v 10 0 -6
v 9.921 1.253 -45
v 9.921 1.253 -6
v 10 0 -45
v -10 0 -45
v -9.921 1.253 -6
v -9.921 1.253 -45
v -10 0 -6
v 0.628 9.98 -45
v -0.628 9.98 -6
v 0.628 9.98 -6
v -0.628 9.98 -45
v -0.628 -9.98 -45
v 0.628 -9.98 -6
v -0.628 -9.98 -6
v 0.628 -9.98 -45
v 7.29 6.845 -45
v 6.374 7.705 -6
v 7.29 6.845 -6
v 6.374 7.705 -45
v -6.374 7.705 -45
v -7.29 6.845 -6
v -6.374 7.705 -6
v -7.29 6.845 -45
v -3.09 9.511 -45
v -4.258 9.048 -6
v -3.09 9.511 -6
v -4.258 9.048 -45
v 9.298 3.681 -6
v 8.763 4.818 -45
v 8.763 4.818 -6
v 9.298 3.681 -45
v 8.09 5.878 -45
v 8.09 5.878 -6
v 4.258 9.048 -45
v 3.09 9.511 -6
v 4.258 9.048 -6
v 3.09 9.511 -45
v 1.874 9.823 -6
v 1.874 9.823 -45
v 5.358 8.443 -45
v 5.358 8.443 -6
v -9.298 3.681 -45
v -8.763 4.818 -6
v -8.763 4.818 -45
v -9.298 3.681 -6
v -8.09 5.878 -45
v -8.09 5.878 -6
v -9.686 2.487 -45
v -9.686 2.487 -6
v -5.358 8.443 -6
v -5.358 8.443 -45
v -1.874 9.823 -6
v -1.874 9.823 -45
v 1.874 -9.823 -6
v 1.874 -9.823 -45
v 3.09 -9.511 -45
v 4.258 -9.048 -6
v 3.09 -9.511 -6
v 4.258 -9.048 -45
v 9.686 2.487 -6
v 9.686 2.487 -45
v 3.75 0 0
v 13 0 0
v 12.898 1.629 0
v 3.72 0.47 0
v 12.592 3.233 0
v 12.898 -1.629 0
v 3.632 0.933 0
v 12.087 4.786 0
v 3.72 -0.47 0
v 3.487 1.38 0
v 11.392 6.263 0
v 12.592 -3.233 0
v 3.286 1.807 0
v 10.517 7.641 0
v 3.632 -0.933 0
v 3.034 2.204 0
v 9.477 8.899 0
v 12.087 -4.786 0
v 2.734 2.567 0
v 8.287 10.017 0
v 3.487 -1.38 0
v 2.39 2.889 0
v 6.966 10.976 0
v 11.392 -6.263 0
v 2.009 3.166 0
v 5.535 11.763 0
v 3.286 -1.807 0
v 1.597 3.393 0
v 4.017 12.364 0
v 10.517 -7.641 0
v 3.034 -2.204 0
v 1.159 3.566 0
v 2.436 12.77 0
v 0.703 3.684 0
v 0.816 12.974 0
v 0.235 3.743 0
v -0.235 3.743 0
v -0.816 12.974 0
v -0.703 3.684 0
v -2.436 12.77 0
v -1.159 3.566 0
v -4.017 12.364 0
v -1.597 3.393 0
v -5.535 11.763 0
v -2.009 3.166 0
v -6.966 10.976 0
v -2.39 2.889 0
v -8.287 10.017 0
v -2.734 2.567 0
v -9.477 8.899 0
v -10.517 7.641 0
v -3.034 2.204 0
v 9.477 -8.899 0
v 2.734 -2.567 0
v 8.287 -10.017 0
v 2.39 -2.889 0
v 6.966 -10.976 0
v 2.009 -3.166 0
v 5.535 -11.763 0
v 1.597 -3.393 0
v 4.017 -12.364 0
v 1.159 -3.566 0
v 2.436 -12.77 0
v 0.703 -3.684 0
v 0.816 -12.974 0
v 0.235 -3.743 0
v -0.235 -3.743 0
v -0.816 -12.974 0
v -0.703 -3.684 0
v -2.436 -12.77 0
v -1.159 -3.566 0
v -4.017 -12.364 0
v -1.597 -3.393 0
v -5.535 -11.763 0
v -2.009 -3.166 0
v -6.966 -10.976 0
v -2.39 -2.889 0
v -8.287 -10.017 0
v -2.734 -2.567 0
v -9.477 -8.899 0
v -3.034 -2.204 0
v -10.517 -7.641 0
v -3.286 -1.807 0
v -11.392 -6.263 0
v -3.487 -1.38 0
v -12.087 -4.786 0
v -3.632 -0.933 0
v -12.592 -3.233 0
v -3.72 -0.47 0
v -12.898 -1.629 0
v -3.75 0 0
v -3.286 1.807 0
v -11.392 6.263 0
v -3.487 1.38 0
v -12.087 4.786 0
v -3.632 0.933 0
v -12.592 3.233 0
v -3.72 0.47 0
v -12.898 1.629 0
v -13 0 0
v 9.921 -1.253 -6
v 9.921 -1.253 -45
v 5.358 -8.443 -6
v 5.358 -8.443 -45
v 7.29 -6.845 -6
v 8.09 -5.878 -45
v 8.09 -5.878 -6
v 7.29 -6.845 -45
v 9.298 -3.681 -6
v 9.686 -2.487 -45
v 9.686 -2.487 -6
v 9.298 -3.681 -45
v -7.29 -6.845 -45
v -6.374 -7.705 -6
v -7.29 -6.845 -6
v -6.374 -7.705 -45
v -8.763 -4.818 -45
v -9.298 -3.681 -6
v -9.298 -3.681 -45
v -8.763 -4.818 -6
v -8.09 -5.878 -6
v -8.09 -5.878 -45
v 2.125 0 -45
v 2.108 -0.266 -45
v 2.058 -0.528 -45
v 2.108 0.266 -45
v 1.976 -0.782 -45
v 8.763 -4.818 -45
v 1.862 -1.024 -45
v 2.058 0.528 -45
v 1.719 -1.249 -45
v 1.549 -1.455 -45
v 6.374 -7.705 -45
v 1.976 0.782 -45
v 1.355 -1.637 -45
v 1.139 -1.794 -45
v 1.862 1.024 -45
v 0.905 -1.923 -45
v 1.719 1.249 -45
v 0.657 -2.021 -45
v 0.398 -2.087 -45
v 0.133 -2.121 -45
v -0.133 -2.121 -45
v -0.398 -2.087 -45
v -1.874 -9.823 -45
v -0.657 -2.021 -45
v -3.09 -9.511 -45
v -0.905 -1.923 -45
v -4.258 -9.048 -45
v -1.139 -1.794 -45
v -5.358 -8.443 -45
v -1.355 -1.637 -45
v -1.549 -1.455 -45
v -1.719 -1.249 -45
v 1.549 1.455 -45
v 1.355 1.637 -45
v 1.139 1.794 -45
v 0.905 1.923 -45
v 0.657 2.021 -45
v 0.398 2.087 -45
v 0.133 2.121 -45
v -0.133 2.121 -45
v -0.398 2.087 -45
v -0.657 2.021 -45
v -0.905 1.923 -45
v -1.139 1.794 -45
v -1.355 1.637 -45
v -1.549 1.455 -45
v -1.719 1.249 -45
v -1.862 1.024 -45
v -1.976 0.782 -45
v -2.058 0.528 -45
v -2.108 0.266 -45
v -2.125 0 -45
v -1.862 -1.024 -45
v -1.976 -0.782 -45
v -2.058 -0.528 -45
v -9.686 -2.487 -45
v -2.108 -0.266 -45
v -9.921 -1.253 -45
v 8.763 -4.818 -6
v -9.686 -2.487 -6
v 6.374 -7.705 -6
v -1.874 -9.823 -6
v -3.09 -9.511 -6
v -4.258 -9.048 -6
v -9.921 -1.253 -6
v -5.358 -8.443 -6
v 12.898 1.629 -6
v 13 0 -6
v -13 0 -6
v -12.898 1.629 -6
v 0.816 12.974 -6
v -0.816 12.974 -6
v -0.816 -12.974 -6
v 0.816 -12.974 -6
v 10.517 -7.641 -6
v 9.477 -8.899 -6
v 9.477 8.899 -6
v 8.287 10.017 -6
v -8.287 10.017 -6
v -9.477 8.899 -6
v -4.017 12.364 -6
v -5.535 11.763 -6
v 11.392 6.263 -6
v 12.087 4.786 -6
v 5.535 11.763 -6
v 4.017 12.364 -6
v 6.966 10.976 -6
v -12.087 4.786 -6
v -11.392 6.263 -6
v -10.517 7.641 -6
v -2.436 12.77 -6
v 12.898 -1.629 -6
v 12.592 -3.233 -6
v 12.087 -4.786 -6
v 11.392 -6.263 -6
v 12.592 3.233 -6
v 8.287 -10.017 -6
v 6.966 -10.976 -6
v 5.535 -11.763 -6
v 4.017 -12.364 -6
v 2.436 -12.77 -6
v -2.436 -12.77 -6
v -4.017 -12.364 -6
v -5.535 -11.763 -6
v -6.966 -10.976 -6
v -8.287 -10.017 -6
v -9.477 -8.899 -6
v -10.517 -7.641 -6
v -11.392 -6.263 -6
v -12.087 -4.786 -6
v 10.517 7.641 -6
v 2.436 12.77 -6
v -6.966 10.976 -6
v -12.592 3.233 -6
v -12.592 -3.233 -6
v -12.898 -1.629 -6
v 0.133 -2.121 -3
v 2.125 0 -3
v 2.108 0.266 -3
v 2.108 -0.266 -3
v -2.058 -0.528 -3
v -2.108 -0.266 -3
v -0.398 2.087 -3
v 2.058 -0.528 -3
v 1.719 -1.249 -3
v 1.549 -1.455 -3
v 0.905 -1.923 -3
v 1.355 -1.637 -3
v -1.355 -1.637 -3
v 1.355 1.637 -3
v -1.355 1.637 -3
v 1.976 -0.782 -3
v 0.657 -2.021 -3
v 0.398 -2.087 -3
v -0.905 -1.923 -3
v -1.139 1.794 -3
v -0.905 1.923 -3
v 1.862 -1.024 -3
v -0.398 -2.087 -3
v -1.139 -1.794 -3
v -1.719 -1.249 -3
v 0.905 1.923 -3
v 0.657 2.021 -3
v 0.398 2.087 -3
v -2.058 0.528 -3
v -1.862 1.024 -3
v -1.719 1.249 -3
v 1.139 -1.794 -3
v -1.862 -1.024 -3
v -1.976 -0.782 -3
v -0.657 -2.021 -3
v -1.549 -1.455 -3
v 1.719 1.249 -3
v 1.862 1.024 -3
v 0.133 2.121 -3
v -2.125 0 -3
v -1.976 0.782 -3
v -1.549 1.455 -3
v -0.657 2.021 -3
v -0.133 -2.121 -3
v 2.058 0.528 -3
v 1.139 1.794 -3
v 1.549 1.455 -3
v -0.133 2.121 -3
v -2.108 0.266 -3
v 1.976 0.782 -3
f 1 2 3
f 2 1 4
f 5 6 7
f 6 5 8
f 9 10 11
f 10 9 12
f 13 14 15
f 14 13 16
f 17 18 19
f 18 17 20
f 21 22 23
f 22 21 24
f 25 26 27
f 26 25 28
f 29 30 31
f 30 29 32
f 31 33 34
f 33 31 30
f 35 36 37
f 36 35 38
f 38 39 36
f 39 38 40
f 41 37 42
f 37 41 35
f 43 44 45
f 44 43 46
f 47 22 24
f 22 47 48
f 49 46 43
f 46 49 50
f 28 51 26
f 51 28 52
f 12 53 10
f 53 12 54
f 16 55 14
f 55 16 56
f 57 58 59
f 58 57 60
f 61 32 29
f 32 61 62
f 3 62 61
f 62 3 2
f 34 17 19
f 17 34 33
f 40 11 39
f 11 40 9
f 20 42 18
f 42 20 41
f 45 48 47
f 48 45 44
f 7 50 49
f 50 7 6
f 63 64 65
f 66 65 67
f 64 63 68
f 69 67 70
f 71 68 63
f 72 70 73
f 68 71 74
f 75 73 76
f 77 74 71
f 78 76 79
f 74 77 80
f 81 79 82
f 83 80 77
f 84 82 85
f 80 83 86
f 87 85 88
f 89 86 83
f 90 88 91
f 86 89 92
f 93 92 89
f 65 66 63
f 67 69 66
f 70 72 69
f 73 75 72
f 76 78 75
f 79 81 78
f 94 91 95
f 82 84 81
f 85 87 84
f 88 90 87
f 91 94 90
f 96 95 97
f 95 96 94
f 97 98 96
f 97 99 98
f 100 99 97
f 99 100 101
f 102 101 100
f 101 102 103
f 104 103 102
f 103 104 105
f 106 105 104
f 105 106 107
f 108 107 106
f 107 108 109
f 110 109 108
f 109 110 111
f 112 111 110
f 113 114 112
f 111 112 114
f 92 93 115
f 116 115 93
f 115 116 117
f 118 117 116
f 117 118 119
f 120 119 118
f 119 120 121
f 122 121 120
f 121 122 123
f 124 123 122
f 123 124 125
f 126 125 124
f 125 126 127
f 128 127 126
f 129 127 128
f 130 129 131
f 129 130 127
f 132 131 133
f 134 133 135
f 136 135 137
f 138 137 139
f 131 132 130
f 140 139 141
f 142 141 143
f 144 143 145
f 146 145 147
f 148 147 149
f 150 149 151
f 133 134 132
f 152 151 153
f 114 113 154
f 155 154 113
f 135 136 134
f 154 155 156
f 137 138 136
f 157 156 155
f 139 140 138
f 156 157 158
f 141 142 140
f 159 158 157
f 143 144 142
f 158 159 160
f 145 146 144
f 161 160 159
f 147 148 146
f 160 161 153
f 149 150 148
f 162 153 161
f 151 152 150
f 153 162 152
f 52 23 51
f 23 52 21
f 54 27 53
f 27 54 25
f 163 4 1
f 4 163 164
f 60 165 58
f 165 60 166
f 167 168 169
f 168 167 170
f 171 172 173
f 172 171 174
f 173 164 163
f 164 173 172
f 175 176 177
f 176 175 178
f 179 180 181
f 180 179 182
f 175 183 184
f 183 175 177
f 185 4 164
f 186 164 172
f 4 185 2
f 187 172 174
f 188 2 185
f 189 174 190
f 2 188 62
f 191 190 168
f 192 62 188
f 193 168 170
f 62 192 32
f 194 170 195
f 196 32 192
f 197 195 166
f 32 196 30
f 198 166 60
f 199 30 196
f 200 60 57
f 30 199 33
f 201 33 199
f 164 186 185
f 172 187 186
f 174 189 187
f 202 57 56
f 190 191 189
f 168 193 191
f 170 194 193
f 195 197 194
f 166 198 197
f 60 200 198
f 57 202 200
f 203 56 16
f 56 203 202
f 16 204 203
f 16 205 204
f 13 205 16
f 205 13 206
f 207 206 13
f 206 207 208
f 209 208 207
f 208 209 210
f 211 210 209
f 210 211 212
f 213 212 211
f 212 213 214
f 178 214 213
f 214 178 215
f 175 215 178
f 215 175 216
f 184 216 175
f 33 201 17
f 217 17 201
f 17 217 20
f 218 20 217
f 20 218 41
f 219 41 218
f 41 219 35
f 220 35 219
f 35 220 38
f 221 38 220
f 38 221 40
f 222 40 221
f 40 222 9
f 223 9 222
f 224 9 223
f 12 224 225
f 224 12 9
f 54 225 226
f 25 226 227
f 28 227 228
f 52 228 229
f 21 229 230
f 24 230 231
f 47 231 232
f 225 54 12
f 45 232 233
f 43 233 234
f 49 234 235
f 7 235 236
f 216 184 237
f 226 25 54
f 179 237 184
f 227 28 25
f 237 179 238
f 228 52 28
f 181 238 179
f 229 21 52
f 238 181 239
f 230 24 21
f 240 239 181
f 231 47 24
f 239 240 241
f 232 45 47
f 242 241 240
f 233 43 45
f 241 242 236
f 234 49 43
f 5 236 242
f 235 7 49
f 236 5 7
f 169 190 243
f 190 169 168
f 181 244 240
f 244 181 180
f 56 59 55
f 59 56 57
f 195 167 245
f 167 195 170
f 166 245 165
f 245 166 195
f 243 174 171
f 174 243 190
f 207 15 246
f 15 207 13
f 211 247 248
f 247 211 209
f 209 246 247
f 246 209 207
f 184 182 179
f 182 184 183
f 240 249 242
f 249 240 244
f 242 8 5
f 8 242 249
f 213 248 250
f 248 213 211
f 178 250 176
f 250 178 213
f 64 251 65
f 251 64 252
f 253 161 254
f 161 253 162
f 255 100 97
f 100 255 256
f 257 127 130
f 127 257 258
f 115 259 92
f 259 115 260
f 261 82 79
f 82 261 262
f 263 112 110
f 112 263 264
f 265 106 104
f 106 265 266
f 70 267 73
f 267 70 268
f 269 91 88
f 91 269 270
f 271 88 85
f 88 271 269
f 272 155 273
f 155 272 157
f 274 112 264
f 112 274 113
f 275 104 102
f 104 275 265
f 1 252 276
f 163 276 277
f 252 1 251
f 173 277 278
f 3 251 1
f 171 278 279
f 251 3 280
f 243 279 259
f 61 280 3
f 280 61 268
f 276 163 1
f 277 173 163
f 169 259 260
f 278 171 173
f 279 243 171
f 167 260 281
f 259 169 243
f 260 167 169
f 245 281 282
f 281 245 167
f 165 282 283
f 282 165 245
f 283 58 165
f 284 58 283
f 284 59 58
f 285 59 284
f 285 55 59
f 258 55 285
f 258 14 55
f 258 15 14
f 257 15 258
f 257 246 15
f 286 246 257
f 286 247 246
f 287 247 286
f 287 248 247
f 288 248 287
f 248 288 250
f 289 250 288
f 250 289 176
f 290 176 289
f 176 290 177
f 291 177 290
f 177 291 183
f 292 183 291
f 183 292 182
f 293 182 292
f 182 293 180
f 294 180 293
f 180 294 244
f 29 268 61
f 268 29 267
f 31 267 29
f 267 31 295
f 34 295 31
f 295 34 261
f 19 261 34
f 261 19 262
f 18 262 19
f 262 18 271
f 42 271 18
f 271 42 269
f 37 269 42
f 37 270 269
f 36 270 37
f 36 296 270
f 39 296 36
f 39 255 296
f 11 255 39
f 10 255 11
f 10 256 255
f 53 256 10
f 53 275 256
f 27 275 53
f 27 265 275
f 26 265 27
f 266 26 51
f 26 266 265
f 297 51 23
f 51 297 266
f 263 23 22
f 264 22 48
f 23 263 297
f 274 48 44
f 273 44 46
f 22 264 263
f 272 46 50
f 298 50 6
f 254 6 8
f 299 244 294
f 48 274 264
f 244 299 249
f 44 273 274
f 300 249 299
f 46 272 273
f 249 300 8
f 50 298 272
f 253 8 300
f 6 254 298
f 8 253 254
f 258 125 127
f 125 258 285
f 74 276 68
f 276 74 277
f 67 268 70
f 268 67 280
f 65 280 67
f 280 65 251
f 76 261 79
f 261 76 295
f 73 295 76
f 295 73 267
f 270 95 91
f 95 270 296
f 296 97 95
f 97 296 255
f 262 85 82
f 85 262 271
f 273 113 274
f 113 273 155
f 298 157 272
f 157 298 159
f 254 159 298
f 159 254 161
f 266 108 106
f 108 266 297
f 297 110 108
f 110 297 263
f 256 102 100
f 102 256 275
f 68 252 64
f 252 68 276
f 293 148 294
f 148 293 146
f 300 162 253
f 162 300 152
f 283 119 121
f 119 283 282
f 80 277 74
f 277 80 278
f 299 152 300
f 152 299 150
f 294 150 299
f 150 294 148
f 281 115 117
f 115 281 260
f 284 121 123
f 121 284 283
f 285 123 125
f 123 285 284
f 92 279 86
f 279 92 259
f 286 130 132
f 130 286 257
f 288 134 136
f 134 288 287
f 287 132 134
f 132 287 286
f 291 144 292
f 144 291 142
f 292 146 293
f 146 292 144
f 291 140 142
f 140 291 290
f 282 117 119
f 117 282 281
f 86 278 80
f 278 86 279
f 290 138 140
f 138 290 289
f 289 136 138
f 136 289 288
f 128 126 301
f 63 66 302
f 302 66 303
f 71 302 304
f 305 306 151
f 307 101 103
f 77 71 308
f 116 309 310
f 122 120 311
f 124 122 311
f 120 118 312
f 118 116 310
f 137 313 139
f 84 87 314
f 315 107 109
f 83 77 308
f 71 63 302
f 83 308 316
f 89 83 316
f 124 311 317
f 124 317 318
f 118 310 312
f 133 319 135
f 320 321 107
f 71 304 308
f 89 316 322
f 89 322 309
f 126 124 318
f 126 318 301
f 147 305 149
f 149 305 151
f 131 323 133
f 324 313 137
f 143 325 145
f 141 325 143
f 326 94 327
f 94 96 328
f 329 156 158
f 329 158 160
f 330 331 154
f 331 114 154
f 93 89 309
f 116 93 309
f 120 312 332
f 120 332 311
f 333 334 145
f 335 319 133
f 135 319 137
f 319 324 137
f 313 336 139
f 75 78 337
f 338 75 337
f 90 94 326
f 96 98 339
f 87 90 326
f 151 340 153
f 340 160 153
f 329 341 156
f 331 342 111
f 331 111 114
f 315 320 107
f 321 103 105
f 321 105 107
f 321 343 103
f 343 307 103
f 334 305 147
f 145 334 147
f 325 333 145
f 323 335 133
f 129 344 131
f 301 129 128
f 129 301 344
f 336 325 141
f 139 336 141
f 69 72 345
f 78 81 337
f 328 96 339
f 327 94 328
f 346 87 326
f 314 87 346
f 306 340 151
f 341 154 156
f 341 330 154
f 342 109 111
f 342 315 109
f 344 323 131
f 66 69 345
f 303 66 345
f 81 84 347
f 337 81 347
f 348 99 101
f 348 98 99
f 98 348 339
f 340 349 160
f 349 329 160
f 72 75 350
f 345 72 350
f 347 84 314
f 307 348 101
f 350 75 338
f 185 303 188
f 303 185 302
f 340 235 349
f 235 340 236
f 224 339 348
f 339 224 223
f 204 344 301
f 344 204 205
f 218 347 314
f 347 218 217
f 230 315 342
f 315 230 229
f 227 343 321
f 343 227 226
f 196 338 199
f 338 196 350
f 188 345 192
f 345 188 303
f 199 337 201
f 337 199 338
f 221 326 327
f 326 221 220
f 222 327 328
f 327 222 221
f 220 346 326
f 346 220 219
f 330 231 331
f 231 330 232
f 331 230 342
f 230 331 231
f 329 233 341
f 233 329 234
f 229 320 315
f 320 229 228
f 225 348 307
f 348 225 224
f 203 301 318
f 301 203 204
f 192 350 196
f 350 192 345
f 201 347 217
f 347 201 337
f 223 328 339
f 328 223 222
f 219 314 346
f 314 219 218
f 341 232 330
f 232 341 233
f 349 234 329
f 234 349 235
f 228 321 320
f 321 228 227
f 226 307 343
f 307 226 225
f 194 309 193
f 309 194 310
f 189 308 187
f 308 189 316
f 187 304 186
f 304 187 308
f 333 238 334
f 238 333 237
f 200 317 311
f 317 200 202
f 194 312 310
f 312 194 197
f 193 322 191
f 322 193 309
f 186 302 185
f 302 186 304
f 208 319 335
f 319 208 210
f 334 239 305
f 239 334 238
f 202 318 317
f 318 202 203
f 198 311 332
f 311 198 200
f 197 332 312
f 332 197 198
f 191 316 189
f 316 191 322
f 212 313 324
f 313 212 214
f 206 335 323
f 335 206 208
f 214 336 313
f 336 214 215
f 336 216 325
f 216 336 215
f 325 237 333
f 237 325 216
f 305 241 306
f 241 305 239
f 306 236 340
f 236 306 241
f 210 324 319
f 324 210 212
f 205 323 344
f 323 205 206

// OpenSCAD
$fn = 50;


difference() {
	union() {
		translate(v = [0, 0, -45.0000000000]) {
			cylinder(h = 45, r = 10.0000000000);
		}
		translate(v = [0, 0, -6.0000000000]) {
			cylinder(h = 6, r = 13.0000000000);
		}
	}
	union() {
		translate(v = [0, 0, 0]) {
			rotate(a = [0, 0, 0]) {
				difference() {
					union() {
						#translate(v = [0, 0, -45.0000000000]) {
							cylinder(h = 45, r = 2.0000000000);
						}
						#translate(v = [0, 0, -3]) {
							cylinder(h = 3, r1 = 2.1250000000, r2 = 3.7500000000);
						}
						#translate(v = [0, 0, -45.0000000000]) {
							cylinder(h = 45, r = 2.1250000000);
						}
						#translate(v = [0, 0, -45.0000000000]) {
							cylinder(h = 45, r = 2.0000000000);
						}
					}
					union();
				}
			}
		}
	}
}
